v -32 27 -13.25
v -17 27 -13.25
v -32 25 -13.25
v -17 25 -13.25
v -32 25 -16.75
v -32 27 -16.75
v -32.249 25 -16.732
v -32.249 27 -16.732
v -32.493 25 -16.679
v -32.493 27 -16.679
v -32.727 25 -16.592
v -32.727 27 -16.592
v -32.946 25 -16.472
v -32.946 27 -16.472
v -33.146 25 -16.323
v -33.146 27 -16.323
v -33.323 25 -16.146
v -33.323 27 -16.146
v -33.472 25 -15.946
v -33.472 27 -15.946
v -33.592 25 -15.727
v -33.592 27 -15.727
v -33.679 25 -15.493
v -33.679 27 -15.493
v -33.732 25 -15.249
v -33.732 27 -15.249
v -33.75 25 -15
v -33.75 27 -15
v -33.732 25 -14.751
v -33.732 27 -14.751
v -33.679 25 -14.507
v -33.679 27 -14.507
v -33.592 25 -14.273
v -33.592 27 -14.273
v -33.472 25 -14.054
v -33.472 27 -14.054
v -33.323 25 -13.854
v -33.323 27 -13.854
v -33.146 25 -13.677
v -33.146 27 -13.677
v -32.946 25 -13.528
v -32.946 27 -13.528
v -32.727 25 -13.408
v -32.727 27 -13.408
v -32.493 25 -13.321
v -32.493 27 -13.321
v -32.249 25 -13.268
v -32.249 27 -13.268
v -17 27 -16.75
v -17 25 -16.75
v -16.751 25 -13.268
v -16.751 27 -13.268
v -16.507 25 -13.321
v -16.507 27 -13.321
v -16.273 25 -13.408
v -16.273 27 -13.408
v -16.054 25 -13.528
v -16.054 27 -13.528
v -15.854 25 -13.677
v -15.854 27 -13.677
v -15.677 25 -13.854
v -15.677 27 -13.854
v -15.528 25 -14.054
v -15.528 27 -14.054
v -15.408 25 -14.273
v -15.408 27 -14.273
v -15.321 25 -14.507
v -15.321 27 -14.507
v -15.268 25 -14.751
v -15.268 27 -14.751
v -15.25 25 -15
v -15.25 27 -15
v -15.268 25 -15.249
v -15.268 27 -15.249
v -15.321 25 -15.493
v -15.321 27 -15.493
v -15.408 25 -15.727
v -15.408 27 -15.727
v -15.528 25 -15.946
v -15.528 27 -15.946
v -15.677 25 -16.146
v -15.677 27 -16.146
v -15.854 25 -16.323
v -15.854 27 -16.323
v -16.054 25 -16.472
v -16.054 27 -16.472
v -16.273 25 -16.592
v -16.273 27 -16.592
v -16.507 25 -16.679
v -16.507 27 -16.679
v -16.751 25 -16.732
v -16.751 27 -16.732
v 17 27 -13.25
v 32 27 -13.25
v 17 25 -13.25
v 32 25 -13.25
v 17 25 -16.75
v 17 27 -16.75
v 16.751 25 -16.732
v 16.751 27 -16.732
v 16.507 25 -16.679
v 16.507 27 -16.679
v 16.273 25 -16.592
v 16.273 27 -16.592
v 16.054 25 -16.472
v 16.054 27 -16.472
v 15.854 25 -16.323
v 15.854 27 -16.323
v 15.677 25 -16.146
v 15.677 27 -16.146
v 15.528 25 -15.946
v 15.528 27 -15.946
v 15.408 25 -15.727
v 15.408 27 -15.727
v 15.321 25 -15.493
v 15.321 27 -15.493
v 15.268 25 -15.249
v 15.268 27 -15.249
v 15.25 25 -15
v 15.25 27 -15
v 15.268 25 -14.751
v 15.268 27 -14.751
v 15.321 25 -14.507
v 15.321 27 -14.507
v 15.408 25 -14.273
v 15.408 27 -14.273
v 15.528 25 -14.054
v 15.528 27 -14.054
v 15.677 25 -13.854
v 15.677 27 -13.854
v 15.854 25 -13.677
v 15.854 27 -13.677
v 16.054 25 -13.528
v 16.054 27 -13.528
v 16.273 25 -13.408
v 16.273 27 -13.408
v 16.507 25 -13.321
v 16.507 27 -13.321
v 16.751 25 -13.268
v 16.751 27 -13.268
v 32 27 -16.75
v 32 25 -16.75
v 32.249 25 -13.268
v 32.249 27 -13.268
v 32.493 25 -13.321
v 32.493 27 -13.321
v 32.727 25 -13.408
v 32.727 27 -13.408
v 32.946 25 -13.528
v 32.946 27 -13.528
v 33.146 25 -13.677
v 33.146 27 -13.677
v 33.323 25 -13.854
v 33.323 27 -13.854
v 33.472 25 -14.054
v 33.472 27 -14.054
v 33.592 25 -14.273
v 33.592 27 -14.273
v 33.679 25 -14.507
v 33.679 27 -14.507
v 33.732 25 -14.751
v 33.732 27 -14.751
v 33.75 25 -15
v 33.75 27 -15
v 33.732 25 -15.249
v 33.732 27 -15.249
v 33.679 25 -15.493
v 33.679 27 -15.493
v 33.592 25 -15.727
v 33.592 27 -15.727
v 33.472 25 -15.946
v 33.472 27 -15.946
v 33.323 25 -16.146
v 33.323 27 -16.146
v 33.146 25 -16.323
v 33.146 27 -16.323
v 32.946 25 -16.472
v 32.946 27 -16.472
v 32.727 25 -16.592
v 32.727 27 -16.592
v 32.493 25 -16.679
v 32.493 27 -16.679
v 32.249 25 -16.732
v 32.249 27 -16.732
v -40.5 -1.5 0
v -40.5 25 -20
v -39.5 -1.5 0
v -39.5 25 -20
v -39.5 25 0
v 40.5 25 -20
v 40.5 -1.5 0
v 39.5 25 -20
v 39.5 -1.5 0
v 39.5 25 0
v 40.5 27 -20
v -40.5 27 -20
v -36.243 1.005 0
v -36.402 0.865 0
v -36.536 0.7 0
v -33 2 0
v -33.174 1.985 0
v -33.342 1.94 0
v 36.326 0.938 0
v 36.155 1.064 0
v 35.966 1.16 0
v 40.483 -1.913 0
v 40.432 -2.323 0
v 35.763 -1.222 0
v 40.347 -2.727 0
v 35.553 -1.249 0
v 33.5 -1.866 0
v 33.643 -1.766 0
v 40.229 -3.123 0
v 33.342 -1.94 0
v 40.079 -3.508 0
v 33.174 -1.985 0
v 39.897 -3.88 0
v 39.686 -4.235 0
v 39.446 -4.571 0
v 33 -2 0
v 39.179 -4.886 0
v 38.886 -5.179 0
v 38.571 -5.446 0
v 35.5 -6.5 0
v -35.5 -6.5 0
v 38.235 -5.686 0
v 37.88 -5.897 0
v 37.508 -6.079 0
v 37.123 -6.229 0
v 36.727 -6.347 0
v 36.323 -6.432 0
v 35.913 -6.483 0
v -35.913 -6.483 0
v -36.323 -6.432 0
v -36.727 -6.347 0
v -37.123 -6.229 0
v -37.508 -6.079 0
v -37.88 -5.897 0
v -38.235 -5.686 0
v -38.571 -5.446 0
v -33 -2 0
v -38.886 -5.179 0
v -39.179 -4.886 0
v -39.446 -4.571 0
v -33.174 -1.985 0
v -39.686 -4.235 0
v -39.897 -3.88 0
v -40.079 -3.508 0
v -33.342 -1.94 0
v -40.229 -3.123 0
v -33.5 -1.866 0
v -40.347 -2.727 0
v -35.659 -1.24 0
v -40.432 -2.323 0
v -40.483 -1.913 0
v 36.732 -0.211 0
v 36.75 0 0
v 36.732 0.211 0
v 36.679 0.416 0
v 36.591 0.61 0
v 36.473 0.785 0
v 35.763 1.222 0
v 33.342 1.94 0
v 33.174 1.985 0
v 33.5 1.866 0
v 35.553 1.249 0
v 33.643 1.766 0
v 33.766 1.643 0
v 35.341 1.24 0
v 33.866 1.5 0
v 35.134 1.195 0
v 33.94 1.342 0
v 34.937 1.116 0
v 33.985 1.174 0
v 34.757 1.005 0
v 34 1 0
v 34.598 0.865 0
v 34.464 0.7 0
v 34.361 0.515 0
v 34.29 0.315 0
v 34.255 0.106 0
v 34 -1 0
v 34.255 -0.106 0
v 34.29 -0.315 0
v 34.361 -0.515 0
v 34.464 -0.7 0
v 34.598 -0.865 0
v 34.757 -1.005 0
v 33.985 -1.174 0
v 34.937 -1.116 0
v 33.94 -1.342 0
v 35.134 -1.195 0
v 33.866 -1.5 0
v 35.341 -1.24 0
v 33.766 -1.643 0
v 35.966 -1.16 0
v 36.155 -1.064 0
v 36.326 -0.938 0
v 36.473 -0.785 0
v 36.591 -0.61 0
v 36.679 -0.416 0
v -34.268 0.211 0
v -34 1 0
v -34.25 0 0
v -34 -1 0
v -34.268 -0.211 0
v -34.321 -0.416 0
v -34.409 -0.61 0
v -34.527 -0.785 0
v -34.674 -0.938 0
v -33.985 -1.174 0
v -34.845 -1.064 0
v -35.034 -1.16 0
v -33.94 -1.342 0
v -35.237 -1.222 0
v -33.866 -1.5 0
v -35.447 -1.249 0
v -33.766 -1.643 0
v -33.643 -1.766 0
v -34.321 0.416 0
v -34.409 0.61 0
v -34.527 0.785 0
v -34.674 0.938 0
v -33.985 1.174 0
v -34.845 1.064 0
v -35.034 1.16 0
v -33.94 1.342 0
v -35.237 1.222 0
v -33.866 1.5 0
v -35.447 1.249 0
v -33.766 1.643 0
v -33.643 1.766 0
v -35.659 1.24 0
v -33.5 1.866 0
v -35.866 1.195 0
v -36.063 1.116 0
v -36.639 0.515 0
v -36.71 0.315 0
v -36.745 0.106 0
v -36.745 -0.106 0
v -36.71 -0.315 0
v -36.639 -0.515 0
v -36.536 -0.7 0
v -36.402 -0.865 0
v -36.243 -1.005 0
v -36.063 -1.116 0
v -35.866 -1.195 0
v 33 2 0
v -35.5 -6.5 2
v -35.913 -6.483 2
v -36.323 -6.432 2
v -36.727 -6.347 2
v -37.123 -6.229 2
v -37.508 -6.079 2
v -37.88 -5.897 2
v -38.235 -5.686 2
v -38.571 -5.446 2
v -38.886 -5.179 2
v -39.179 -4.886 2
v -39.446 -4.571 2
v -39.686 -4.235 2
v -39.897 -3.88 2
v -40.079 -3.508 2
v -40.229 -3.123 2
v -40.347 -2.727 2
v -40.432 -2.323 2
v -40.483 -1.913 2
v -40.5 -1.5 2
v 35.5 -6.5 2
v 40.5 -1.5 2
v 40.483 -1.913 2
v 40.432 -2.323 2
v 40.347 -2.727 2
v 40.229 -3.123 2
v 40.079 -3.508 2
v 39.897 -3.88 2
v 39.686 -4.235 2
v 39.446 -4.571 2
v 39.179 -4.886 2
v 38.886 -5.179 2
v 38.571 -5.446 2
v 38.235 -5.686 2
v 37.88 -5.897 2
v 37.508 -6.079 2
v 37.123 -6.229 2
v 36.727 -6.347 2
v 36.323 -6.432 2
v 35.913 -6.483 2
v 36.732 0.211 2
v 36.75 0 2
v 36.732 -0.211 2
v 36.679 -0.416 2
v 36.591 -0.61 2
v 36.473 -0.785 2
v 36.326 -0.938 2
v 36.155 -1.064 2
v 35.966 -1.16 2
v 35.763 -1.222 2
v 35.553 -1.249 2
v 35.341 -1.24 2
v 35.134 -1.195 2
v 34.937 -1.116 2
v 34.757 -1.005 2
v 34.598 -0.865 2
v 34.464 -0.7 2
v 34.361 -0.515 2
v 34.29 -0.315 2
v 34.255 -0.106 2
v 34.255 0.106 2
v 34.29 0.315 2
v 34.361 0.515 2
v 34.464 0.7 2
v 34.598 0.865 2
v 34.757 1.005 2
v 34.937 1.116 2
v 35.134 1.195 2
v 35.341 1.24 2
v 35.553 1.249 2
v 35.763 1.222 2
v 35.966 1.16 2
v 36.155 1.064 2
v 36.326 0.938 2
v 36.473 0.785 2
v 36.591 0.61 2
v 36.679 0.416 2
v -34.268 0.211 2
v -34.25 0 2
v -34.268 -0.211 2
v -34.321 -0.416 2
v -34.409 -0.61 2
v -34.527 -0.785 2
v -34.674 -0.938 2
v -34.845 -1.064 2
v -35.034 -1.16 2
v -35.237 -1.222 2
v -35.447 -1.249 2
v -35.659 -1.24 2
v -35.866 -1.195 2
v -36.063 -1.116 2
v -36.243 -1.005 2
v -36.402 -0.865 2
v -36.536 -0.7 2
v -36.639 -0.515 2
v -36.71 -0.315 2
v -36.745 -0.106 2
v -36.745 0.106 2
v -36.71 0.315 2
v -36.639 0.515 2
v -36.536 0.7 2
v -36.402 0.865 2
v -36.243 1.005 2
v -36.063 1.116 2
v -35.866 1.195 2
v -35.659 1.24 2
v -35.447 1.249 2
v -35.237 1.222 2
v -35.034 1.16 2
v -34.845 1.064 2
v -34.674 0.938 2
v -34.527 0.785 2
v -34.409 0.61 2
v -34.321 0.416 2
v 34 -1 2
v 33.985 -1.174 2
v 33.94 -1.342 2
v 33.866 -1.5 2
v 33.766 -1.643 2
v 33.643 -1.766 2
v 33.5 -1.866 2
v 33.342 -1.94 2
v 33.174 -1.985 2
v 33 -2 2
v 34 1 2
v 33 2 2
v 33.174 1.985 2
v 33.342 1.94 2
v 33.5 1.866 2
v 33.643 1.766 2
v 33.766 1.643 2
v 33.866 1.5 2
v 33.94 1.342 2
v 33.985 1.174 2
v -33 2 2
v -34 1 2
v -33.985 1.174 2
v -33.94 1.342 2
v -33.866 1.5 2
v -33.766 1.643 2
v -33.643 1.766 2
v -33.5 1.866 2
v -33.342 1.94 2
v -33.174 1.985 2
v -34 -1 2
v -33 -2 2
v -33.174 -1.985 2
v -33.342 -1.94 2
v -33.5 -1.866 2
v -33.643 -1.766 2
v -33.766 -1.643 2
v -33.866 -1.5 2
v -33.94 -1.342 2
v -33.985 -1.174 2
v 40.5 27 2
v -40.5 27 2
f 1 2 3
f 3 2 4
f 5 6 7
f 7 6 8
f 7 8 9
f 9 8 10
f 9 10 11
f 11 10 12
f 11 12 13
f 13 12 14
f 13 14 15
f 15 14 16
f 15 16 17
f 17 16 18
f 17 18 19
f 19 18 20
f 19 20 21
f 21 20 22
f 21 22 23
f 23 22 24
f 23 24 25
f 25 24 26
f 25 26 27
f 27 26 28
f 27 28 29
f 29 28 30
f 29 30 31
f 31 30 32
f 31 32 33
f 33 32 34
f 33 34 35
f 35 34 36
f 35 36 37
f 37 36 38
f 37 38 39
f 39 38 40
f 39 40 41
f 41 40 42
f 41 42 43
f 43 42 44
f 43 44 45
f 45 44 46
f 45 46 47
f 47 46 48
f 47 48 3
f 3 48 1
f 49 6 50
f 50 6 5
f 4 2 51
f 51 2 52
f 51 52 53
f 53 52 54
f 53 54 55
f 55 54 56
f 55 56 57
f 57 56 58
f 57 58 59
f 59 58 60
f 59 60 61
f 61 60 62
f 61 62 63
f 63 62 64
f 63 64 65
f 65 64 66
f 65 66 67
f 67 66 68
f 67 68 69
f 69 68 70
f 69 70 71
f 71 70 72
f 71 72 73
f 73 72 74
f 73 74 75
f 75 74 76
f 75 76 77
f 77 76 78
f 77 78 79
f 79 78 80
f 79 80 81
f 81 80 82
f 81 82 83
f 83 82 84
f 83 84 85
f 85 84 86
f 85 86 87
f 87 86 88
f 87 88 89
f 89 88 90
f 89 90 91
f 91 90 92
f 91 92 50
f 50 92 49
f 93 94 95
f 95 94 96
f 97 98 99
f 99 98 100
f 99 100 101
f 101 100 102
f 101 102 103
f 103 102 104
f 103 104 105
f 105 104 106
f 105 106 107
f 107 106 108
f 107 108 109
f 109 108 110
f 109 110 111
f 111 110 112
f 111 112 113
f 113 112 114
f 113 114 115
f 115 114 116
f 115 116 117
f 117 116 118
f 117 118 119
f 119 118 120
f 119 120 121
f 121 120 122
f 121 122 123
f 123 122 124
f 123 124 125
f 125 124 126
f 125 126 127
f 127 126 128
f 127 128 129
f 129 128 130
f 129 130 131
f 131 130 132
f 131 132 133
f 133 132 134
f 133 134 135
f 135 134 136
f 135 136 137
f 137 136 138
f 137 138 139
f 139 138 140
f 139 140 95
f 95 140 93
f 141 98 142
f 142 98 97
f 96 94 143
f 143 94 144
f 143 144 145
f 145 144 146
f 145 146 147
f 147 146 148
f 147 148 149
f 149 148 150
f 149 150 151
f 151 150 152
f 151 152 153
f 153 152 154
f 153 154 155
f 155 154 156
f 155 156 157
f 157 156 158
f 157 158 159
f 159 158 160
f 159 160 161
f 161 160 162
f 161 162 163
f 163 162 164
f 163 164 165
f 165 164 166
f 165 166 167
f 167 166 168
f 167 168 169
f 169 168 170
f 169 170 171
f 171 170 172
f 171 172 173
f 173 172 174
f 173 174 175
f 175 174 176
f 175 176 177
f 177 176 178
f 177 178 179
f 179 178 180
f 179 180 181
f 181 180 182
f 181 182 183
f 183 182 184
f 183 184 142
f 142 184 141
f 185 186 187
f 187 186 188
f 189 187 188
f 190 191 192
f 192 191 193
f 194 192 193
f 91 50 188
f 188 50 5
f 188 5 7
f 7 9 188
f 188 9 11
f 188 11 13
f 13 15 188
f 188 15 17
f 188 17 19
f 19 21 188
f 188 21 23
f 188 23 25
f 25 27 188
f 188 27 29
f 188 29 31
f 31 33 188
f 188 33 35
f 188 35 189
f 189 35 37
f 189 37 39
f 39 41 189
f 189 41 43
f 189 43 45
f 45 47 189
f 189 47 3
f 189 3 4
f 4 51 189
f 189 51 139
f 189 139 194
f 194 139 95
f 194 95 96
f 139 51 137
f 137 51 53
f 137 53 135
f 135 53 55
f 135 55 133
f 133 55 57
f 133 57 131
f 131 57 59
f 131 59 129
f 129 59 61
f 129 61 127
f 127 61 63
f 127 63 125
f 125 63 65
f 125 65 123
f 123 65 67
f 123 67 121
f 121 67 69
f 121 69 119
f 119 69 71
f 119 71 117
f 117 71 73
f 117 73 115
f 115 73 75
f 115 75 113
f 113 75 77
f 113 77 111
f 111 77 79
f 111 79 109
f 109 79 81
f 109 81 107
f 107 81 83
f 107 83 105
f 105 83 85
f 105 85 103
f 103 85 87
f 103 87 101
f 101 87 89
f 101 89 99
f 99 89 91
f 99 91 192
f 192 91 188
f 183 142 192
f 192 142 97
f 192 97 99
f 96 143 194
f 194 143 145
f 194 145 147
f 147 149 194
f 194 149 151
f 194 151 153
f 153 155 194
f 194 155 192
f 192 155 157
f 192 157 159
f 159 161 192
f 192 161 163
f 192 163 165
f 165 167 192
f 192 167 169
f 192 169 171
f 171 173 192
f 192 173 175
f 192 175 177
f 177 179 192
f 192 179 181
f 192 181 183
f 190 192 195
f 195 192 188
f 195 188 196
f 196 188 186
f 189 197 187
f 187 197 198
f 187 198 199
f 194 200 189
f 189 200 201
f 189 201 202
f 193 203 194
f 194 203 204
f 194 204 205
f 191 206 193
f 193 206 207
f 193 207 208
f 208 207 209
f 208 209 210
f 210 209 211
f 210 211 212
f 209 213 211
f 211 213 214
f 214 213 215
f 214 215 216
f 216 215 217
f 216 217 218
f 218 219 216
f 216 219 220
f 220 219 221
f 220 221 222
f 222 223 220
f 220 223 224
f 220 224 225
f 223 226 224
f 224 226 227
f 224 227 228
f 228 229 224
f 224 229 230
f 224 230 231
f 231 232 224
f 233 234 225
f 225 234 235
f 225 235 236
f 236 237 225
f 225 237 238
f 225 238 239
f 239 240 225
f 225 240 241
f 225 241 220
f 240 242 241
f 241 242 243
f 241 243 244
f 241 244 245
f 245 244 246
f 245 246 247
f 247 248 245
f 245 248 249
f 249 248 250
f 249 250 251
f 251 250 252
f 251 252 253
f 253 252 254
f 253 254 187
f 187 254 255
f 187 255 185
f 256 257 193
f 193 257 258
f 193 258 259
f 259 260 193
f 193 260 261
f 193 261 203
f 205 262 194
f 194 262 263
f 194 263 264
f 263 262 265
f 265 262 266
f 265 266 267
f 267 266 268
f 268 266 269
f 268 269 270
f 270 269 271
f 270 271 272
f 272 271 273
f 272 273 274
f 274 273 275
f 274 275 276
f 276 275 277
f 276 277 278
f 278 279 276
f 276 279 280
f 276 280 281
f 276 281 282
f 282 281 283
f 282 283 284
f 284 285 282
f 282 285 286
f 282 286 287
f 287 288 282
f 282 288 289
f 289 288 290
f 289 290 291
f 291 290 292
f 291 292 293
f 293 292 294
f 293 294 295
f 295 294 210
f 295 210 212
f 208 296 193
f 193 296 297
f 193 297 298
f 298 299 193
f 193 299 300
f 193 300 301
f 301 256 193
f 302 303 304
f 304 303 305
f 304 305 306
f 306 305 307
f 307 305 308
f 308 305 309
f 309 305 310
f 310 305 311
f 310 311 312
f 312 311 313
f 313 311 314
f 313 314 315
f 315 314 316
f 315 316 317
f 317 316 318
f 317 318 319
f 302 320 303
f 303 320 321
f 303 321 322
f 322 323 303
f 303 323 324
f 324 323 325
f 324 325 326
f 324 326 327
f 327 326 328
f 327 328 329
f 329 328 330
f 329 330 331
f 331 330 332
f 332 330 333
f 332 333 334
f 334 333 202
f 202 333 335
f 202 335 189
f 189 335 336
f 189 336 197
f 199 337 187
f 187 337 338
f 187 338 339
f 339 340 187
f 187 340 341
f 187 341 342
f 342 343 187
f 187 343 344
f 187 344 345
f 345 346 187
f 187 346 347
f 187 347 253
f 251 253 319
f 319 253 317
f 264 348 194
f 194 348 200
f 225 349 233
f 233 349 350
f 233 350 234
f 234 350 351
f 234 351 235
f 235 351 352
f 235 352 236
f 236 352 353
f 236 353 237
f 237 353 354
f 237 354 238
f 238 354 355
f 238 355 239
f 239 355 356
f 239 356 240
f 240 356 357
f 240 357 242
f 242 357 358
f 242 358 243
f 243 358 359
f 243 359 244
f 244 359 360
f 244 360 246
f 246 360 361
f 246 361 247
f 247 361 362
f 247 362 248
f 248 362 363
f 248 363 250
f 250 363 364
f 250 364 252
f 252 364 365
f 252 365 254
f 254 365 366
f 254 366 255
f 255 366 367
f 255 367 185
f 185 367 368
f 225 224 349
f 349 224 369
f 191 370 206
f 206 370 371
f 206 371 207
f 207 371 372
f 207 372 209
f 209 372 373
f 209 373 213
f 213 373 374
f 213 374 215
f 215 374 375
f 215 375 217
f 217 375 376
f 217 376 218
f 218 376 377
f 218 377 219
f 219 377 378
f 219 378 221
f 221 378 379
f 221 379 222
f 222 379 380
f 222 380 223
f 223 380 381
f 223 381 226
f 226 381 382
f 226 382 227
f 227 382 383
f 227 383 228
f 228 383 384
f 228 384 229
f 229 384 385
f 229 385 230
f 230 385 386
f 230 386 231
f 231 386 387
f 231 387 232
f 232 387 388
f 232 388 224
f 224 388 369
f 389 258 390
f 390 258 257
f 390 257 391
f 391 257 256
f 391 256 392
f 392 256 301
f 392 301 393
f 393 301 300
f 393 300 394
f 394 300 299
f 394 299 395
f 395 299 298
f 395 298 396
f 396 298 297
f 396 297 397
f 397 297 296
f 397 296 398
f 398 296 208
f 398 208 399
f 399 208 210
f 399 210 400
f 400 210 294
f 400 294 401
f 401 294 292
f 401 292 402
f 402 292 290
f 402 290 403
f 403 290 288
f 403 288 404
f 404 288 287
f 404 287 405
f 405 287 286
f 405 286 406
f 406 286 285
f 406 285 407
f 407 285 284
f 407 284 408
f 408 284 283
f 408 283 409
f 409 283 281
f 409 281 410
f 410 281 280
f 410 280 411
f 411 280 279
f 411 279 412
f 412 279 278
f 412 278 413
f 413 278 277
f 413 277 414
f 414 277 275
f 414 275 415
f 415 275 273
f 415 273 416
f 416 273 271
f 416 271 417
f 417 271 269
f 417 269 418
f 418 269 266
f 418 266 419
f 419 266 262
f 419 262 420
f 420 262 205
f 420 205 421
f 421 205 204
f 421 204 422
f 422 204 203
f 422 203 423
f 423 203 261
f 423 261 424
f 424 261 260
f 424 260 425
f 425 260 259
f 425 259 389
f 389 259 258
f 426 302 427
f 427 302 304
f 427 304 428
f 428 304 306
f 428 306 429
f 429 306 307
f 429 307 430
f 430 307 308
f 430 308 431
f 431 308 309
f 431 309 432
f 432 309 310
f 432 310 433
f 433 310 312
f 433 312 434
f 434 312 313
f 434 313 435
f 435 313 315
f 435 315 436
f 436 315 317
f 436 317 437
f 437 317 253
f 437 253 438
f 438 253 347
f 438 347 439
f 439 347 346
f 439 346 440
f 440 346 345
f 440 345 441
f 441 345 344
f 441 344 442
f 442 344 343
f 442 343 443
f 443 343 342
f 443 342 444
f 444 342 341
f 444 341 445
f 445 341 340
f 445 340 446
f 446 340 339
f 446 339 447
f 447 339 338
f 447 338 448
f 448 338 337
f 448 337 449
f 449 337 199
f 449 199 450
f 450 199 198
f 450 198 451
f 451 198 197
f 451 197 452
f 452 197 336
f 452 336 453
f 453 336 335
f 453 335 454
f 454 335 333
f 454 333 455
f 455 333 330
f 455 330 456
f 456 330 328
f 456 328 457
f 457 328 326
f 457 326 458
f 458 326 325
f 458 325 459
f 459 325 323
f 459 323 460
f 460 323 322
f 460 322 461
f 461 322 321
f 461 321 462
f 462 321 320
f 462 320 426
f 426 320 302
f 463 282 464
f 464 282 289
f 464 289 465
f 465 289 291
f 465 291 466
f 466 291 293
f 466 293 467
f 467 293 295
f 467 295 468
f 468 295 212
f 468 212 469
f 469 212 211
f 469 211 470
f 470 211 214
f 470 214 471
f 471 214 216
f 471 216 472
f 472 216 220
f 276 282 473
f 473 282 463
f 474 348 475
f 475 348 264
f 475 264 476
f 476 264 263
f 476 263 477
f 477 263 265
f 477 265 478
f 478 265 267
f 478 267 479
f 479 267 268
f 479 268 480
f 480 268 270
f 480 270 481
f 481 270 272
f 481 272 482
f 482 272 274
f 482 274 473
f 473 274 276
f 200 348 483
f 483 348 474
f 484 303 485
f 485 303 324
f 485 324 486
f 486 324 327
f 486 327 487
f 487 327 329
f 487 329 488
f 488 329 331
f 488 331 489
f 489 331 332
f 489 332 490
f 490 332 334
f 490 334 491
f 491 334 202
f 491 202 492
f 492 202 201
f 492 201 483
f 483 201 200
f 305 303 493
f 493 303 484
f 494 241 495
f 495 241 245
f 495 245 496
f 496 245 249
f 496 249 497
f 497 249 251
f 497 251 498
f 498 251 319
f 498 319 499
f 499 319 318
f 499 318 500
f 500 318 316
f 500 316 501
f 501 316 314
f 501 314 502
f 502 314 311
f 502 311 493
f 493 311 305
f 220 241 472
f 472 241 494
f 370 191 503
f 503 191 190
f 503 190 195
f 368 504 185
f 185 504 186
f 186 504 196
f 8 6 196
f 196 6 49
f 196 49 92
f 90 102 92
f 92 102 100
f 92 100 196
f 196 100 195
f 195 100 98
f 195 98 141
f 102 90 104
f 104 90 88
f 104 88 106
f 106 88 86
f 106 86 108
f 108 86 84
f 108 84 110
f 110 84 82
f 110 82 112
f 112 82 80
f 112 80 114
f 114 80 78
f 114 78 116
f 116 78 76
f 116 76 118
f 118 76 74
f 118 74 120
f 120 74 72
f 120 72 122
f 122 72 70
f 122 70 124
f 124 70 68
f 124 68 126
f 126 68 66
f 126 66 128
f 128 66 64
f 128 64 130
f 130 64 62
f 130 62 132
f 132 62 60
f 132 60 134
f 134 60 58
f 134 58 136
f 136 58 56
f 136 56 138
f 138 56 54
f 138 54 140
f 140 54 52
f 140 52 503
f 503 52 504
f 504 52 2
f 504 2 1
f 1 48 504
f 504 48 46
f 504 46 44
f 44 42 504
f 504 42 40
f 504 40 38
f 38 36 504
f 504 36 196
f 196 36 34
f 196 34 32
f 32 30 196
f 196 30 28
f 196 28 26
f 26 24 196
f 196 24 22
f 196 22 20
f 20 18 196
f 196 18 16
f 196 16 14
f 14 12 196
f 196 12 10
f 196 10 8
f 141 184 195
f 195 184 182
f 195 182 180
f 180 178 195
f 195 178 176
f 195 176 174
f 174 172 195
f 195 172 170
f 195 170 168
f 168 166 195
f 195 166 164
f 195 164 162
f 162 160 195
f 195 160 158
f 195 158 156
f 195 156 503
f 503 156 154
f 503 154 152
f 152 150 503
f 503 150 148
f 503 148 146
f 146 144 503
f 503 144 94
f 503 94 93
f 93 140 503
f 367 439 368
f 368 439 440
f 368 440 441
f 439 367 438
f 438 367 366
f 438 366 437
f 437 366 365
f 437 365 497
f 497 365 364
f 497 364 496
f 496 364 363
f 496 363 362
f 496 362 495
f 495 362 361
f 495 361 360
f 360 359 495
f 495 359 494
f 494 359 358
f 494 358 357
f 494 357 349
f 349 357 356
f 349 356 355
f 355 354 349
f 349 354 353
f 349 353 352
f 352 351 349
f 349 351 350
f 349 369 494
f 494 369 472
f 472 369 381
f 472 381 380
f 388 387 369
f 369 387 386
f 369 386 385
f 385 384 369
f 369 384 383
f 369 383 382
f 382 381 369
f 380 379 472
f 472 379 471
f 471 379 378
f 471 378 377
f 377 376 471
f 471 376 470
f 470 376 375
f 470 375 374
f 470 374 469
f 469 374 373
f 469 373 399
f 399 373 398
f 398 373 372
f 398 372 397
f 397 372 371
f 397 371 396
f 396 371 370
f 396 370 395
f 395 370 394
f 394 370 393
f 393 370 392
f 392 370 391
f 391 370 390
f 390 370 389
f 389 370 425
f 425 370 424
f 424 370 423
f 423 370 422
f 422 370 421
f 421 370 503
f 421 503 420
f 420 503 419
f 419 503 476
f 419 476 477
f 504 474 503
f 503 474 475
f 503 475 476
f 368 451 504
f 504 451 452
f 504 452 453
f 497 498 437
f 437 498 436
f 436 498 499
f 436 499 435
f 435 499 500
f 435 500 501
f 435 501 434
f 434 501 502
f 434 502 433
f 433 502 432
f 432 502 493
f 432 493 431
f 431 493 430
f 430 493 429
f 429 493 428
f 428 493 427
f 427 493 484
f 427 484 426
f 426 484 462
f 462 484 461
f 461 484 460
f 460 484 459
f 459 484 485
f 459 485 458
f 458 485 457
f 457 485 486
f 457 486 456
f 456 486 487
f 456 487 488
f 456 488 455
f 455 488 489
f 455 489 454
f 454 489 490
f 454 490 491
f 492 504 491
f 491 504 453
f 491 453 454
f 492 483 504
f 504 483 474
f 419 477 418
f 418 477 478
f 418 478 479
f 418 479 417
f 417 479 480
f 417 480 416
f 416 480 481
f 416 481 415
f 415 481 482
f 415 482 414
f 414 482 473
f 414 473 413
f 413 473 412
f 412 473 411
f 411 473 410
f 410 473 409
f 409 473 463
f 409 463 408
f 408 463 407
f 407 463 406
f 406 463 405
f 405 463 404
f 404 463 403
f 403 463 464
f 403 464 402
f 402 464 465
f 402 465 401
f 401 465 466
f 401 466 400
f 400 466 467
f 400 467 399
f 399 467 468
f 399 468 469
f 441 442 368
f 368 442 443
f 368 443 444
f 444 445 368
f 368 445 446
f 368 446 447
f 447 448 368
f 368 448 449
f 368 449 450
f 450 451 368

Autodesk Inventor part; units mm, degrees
ref_plane "YZ Plane" through (0, 0, 0) normal (1, 0, 0) x (0, 1, 0)
ref_plane "XZ Plane" through (0, 0, 0) normal (0, 1, 0) x (-1, 0, 0)
ref_plane "XY Plane" through (0, 0, 0) normal (0, 0, 1) x (1, 0, 0)
ref_plane "Arbeitsebene1" through (0, 0, 0) normal (0, 0, 1) x (1, 0, 0)
sketch "Skizze1" plane through (0, 0, 0) normal (0, 0, 1) x (1, 0, 0)
  spline S0 degree 3 poles (34.5, 0) (34.4922, -0.0784) (34.4879, -0.2047) (34.5533, -0.4702) (34.6001, -0.5784) (34.7323, -0.7826) (34.8194, -0.8753) (34.994, -1.0048) (35.1117, -1.0785) (35.3805, -1.1607) (35.4924, -1.1779) (35.724, -1.1797) (35.8424, -1.1625) (35.9562, -1.1277) knots -0.341572 -0.341572 -0.341572 -0.341572 -0.254859 -0.254859 -0.189973 -0.189973 -0.120019 -0.120019 -0.069482 -0.069482 -0.03569 -0.03569 0 0 0 0 construction
  circle A0 centre (35.5, 0) radius 1 construction
  circle A1 centre (-35.5, 0) radius 1 construction
  line L0 (-36.5594, -4.5) -> (36.5594, -4.5) construction
  line L1 (37.5, -3.5594) -> (37.5, 3.5594) construction
  line L2 (-36.5594, 4.5) -> (36.5594, 4.5) construction
  line L3 (-37.5, -3.5594) -> (-37.5, 3.5594) construction
  line L4 (-36.95, 3.5319) -> (-36.95, -3.5319) construction
  arc A2 (-36.5319, -3.95) -> (-36.95, -3.5319) centre (-37.1503, -4.1503) ccw construction
  line L5 (-36.5319, -3.95) -> (36.5319, -3.95) construction
  arc A3 (36.95, -3.5319) -> (36.5319, -3.95) centre (37.1503, -4.1503) ccw construction
  line L6 (36.95, 3.5319) -> (36.95, -3.5319) construction
  arc A4 (36.5319, 3.95) -> (36.95, 3.5319) centre (37.1503, 4.1503) ccw construction
  line L7 (-36.5319, 3.95) -> (36.5319, 3.95) construction
  arc A5 (-36.95, 3.5319) -> (-36.5319, 3.95) centre (-37.1503, 4.1503) ccw construction
  spline S1 degree 3 poles (-36.5, 0) (-36.5078, -0.0784) (-36.5121, -0.2047) (-36.4467, -0.4702) (-36.3999, -0.5784) (-36.2677, -0.7826) (-36.1806, -0.8753) (-36.006, -1.0048) (-35.8883, -1.0785) (-35.6195, -1.1607) (-35.5076, -1.1779) (-35.276, -1.1797) (-35.1576, -1.1625) (-35.0438, -1.1277) knots -0.341572 -0.341572 -0.341572 -0.341572 -0.254859 -0.254859 -0.189973 -0.189973 -0.120019 -0.120019 -0.069482 -0.069482 -0.03569 -0.03569 0 0 0 0 construction
  arc A6 (-35.5, 1) -> (-36.5, 0) centre (-35.5, 0) ccw construction
  spline S2 degree 3 poles (-34.3787, -0.4718) (-34.3466, -0.3696) (-34.3281, -0.2637) (-34.32, -0.0752) (-34.3224, 0.0413) (-34.3918, 0.3184) (-34.4553, 0.4524) (-34.6302, 0.687) (-34.7395, 0.7855) (-34.9556, 0.9143) (-35.0636, 0.9616) (-35.2916, 1.0075) (-35.3964, 1.012) (-35.5, 1) knots -0.292776 -0.292776 -0.292776 -0.292776 -0.226562 -0.226562 -0.176122 -0.176122 -0.122734 -0.122734 -0.069758 -0.069758 -0.031291 -0.031291 0 0 0 0 construction
  arc A7 (-35.0438, -1.1277) -> (-34.3787, -0.4718) centre (-35.5, 0) ccw construction
  spline S3 degree 3 poles (34.5, 0) (34.4922, -0.0784) (34.4879, -0.2047) (34.5533, -0.4702) (34.6001, -0.5784) (34.7323, -0.7826) (34.8194, -0.8753) (34.994, -1.0048) (35.1117, -1.0785) (35.3805, -1.1607) (35.4924, -1.1779) (35.724, -1.1797) (35.8424, -1.1625) (35.9562, -1.1277) knots -0.341572 -0.341572 -0.341572 -0.341572 -0.254859 -0.254859 -0.189973 -0.189973 -0.120019 -0.120019 -0.069482 -0.069482 -0.03569 -0.03569 0 0 0 0 construction
  arc A8 (35.5, 1) -> (34.5, 0) centre (35.5, 0) ccw construction
  spline S4 degree 3 poles (36.6213, -0.4718) (36.6534, -0.3696) (36.6719, -0.2637) (36.68, -0.0752) (36.6776, 0.0413) (36.6082, 0.3184) (36.5447, 0.4524) (36.3698, 0.687) (36.2605, 0.7855) (36.0444, 0.9143) (35.9364, 0.9616) (35.7084, 1.0075) (35.6036, 1.012) (35.5, 1) knots -0.292776 -0.292776 -0.292776 -0.292776 -0.226562 -0.226562 -0.176122 -0.176122 -0.122734 -0.122734 -0.069758 -0.069758 -0.031291 -0.031291 0 0 0 0 construction
  arc A9 (35.9562, -1.1277) -> (36.6213, -0.4718) centre (35.5, 0) ccw construction
  line L8 (-33.5, 1) -> (-33.5, -1) construction
  arc A10 (-33, 1.5) -> (-33.5, 1) centre (-33, 1) ccw construction
  line L9 (33, 1.5) -> (-33, 1.5) construction
  arc A11 (33.5, 1) -> (33, 1.5) centre (33, 1) ccw construction
  line L10 (33.5, -1) -> (33.5, 1) construction
  arc A12 (33, -1.5) -> (33.5, -1) centre (33, -1) ccw construction
  line L11 (-33, -1.5) -> (33, -1.5) construction
  arc A13 (-33.5, -1) -> (-33, -1.5) centre (-33, -1) ccw construction
  line L12 (40.5, -6.5) -> (-40.5, -6.5)
  line L13 (-40.5, -6.5) -> (-40.5, 27)
  line L14 (-40.5, 27) -> (40.5, 27)
  line L15 (40.5, 27) -> (40.5, -6.5)
  circle A14 centre (35.5, 0) radius 1.25
  circle A15 centre (-35.5, 0) radius 1.25
  arc A16 (33, -2) -> (34, -1) centre (33, -1) ccw
  line L16 (34, -1) -> (34, 1)
  arc A17 (34, 1) -> (33, 2) centre (33, 1) ccw
  line L17 (33, 2) -> (-33, 2)
  arc A18 (-33, 2) -> (-34, 1) centre (-33, 1) ccw
  line L18 (-34, 1) -> (-34, -1)
  arc A19 (-34, -1) -> (-33, -2) centre (-33, -1) ccw
  line L19 (-33, -2) -> (33, -2)
  point P0 (0, 0)
  dimension "d0" = 5
  dimension "d1" = 5
  dimension "d2" = 2
  dimension "d3" = 27
  dimension "d4" = 2.5
  dimension "d5" = 2.5
extrude "Extrusion1" add sketch "Skizze1" along normal blind 2
fillet "Rundung1" radius 5 2 edges at (40.5, -6.5, 1) (-40.5, -6.5, 1)
sketch "Skizze2" plane through (0, 0, 0) normal (0, 0, -1) x (-1, 0, 0)
  line L0 (-40.5, 27) -> (40.5, 27) construction
  line L1 (40.5, 27) -> (40.5, -1.5) construction
  line L2 (-40.5, -1.5) -> (-40.5, 27) construction
  line L3 (40.5, 27) -> (-40.5, 27)
  line L4 (-40.5, 27) -> (-40.5, 25)
  line L5 (-40.5, 25) -> (40.5, 25)
  line L6 (40.5, 25) -> (40.5, 27)
  point P0 (0, 0)
  dimension "d9" = 2
extrude "Extrusion2" add sketch "Skizze2" along normal blind 20
sketch "Skizze3" plane through (40.5, -1.5, 2) normal (1, 0, 0) x (0, 0, -1)
  line L0 (2, 0) -> (0, 0) construction
  line L1 (2, 0) -> (2, 26.5) projected
  line L2 (2, 26.5) -> (22, 26.5) projected
  line L3 (22, 28.5) -> (22, 26.5) construction
  line L4 (0, 28.5) -> (22, 28.5) construction
  line L5 (0, 0) -> (0, 28.5) construction
  line L6 (2, 0) -> (22, 26.5)
  point P0 (2, 1.5)
extrude "Extrusion3" add sketch "Skizze3" against normal blind 1
sketch "Skizze4" plane through (-40.5, -1.5, 2) normal (-1, 0, 0) x (0, 0, 1)
  line L0 (-22, 26.5) -> (-2, 26.5) projected
  line L1 (-22, 26.5) -> (-2, 0) projected
  line L2 (-2, 26.5) -> (-2, 0) projected
  point P0 (-2, 1.5)
extrude "Extrusion4" add sketch "Skizze4" against normal blind 1
sketch "Skizze5" plane through (39.5, 25, -20) normal (0, -1, 0) x (1, 0, 0)
  line L0 (-0.5716, 5) -> (-194.7619, 5) construction
  line L1 (-7.5, 5) -> (-22.5, 5) construction
  line L2 (-7.5, 6.75) -> (-22.5, 6.75)
  line L3 (-22.5, 3.25) -> (-7.5, 3.25)
  arc A0 (-7.5, 3.25) -> (-7.5, 6.75) centre (-7.5, 5) ccw
  arc A1 (-22.5, 6.75) -> (-22.5, 3.25) centre (-22.5, 5) ccw
  line L4 (-56.5, 5) -> (-71.5, 5) construction
  line L5 (-56.5, 6.75) -> (-71.5, 6.75)
  line L6 (-71.5, 3.25) -> (-56.5, 3.25)
  arc A2 (-56.5, 3.25) -> (-56.5, 6.75) centre (-56.5, 5) ccw
  arc A3 (-71.5, 6.75) -> (-71.5, 3.25) centre (-71.5, 5) ccw
  line L7 (0, 0) -> (-79, 0) projected
  line L8 (0, 0) -> (0, 20) projected
  line L9 (-79, 20) -> (-79, 0) projected
  point P0 (-39.5, 20)
  point P1 (-15, 5)
  point P2 (-64, 5)
  dimension "d16" = 3.5
  dimension "d17" = 15
  dimension "d18" = 5
  dimension "d19" = 15
  dimension "d20" = 15
extrude "Extrusion5" cut sketch "Skizze5" against normal through all
properties part number "Halterung_Winkel"
